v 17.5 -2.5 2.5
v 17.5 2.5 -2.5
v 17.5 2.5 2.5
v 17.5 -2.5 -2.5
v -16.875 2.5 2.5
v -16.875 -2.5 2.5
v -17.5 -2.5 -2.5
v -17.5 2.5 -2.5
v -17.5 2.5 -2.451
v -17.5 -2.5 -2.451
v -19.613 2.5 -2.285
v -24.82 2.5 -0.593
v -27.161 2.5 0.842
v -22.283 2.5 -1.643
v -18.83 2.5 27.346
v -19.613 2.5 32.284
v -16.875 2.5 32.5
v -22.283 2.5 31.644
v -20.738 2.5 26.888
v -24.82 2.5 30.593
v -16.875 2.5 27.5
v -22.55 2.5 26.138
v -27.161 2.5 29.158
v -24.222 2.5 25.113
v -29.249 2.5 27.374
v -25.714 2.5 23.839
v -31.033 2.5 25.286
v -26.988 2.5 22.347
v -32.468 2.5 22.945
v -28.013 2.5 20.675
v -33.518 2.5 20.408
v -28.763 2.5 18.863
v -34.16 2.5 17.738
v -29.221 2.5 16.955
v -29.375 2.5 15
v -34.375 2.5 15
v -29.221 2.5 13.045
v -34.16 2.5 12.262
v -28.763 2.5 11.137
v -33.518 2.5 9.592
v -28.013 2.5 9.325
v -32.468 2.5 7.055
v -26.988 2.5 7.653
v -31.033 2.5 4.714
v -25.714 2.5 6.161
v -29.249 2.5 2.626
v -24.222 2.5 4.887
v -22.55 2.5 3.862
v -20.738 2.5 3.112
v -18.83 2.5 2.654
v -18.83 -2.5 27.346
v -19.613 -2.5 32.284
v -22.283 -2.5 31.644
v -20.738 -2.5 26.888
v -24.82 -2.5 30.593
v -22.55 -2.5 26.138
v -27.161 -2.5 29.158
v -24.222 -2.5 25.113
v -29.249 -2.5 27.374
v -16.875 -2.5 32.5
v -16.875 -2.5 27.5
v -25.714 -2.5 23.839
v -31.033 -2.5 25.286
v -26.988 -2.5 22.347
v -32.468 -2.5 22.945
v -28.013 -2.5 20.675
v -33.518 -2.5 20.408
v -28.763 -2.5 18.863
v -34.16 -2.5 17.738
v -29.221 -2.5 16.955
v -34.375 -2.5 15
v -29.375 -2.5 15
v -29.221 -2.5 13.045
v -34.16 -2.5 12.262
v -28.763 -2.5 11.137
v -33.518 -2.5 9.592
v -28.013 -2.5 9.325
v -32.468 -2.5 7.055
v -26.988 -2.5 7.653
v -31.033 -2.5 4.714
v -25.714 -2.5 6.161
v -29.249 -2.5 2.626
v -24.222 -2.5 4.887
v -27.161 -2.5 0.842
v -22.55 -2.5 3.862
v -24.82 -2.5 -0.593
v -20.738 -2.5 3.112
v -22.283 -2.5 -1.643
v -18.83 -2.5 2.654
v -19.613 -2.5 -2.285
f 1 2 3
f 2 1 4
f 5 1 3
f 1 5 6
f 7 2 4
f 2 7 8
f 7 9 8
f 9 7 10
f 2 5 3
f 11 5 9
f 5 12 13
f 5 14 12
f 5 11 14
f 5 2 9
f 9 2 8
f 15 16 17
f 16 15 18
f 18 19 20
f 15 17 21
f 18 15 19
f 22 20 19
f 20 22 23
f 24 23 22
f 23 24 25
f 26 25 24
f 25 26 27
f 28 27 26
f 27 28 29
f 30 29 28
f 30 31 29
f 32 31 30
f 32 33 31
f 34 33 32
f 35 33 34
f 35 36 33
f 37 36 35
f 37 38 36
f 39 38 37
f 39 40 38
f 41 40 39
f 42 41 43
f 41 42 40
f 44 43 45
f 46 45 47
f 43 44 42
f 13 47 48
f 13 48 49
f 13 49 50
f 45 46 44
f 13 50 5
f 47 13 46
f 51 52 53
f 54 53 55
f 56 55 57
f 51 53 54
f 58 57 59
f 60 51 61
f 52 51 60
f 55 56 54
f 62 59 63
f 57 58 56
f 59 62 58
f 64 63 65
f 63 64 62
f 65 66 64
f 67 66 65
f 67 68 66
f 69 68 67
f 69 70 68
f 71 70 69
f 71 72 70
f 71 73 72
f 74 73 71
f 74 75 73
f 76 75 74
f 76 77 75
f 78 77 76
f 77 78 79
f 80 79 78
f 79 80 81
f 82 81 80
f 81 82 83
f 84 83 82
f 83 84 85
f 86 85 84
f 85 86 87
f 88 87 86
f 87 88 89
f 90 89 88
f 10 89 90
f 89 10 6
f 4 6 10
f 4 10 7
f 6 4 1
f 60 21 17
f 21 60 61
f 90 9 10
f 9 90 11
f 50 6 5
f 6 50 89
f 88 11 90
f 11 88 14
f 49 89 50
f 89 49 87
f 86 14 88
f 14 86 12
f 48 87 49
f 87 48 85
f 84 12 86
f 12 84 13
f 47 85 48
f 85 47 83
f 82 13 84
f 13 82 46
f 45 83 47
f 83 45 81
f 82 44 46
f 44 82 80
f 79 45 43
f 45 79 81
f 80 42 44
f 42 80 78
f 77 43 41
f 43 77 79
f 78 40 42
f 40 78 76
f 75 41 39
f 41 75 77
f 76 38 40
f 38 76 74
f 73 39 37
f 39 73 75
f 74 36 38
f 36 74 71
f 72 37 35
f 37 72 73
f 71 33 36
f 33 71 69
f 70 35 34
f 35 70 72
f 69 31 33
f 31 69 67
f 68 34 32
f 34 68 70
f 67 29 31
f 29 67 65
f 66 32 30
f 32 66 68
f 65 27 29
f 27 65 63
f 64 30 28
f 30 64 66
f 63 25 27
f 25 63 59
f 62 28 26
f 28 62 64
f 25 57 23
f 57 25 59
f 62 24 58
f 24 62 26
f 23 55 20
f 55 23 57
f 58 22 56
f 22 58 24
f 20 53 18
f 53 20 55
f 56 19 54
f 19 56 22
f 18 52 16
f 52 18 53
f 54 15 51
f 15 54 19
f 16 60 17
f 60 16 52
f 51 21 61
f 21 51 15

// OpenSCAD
$fn = 100;
union()
{
  cube(size = [35, 5, 5], center = true);
  translate(v = [0, 0, 15])
  {
    translate(v = [-24.375, 0, 0])
    {
      rotate(a = [0, 90, 90], v = undef)
      {
        translate(v = [0, -7.5, 0])
        {
          rotate_extrude(angle = 180, convexity = 4, $fn = 40)
          {
            translate(v = [15, 0, 0])
            {
              square(size = [5, 5], center = true);
            }
          }
        }
      }
    }
  }
}
